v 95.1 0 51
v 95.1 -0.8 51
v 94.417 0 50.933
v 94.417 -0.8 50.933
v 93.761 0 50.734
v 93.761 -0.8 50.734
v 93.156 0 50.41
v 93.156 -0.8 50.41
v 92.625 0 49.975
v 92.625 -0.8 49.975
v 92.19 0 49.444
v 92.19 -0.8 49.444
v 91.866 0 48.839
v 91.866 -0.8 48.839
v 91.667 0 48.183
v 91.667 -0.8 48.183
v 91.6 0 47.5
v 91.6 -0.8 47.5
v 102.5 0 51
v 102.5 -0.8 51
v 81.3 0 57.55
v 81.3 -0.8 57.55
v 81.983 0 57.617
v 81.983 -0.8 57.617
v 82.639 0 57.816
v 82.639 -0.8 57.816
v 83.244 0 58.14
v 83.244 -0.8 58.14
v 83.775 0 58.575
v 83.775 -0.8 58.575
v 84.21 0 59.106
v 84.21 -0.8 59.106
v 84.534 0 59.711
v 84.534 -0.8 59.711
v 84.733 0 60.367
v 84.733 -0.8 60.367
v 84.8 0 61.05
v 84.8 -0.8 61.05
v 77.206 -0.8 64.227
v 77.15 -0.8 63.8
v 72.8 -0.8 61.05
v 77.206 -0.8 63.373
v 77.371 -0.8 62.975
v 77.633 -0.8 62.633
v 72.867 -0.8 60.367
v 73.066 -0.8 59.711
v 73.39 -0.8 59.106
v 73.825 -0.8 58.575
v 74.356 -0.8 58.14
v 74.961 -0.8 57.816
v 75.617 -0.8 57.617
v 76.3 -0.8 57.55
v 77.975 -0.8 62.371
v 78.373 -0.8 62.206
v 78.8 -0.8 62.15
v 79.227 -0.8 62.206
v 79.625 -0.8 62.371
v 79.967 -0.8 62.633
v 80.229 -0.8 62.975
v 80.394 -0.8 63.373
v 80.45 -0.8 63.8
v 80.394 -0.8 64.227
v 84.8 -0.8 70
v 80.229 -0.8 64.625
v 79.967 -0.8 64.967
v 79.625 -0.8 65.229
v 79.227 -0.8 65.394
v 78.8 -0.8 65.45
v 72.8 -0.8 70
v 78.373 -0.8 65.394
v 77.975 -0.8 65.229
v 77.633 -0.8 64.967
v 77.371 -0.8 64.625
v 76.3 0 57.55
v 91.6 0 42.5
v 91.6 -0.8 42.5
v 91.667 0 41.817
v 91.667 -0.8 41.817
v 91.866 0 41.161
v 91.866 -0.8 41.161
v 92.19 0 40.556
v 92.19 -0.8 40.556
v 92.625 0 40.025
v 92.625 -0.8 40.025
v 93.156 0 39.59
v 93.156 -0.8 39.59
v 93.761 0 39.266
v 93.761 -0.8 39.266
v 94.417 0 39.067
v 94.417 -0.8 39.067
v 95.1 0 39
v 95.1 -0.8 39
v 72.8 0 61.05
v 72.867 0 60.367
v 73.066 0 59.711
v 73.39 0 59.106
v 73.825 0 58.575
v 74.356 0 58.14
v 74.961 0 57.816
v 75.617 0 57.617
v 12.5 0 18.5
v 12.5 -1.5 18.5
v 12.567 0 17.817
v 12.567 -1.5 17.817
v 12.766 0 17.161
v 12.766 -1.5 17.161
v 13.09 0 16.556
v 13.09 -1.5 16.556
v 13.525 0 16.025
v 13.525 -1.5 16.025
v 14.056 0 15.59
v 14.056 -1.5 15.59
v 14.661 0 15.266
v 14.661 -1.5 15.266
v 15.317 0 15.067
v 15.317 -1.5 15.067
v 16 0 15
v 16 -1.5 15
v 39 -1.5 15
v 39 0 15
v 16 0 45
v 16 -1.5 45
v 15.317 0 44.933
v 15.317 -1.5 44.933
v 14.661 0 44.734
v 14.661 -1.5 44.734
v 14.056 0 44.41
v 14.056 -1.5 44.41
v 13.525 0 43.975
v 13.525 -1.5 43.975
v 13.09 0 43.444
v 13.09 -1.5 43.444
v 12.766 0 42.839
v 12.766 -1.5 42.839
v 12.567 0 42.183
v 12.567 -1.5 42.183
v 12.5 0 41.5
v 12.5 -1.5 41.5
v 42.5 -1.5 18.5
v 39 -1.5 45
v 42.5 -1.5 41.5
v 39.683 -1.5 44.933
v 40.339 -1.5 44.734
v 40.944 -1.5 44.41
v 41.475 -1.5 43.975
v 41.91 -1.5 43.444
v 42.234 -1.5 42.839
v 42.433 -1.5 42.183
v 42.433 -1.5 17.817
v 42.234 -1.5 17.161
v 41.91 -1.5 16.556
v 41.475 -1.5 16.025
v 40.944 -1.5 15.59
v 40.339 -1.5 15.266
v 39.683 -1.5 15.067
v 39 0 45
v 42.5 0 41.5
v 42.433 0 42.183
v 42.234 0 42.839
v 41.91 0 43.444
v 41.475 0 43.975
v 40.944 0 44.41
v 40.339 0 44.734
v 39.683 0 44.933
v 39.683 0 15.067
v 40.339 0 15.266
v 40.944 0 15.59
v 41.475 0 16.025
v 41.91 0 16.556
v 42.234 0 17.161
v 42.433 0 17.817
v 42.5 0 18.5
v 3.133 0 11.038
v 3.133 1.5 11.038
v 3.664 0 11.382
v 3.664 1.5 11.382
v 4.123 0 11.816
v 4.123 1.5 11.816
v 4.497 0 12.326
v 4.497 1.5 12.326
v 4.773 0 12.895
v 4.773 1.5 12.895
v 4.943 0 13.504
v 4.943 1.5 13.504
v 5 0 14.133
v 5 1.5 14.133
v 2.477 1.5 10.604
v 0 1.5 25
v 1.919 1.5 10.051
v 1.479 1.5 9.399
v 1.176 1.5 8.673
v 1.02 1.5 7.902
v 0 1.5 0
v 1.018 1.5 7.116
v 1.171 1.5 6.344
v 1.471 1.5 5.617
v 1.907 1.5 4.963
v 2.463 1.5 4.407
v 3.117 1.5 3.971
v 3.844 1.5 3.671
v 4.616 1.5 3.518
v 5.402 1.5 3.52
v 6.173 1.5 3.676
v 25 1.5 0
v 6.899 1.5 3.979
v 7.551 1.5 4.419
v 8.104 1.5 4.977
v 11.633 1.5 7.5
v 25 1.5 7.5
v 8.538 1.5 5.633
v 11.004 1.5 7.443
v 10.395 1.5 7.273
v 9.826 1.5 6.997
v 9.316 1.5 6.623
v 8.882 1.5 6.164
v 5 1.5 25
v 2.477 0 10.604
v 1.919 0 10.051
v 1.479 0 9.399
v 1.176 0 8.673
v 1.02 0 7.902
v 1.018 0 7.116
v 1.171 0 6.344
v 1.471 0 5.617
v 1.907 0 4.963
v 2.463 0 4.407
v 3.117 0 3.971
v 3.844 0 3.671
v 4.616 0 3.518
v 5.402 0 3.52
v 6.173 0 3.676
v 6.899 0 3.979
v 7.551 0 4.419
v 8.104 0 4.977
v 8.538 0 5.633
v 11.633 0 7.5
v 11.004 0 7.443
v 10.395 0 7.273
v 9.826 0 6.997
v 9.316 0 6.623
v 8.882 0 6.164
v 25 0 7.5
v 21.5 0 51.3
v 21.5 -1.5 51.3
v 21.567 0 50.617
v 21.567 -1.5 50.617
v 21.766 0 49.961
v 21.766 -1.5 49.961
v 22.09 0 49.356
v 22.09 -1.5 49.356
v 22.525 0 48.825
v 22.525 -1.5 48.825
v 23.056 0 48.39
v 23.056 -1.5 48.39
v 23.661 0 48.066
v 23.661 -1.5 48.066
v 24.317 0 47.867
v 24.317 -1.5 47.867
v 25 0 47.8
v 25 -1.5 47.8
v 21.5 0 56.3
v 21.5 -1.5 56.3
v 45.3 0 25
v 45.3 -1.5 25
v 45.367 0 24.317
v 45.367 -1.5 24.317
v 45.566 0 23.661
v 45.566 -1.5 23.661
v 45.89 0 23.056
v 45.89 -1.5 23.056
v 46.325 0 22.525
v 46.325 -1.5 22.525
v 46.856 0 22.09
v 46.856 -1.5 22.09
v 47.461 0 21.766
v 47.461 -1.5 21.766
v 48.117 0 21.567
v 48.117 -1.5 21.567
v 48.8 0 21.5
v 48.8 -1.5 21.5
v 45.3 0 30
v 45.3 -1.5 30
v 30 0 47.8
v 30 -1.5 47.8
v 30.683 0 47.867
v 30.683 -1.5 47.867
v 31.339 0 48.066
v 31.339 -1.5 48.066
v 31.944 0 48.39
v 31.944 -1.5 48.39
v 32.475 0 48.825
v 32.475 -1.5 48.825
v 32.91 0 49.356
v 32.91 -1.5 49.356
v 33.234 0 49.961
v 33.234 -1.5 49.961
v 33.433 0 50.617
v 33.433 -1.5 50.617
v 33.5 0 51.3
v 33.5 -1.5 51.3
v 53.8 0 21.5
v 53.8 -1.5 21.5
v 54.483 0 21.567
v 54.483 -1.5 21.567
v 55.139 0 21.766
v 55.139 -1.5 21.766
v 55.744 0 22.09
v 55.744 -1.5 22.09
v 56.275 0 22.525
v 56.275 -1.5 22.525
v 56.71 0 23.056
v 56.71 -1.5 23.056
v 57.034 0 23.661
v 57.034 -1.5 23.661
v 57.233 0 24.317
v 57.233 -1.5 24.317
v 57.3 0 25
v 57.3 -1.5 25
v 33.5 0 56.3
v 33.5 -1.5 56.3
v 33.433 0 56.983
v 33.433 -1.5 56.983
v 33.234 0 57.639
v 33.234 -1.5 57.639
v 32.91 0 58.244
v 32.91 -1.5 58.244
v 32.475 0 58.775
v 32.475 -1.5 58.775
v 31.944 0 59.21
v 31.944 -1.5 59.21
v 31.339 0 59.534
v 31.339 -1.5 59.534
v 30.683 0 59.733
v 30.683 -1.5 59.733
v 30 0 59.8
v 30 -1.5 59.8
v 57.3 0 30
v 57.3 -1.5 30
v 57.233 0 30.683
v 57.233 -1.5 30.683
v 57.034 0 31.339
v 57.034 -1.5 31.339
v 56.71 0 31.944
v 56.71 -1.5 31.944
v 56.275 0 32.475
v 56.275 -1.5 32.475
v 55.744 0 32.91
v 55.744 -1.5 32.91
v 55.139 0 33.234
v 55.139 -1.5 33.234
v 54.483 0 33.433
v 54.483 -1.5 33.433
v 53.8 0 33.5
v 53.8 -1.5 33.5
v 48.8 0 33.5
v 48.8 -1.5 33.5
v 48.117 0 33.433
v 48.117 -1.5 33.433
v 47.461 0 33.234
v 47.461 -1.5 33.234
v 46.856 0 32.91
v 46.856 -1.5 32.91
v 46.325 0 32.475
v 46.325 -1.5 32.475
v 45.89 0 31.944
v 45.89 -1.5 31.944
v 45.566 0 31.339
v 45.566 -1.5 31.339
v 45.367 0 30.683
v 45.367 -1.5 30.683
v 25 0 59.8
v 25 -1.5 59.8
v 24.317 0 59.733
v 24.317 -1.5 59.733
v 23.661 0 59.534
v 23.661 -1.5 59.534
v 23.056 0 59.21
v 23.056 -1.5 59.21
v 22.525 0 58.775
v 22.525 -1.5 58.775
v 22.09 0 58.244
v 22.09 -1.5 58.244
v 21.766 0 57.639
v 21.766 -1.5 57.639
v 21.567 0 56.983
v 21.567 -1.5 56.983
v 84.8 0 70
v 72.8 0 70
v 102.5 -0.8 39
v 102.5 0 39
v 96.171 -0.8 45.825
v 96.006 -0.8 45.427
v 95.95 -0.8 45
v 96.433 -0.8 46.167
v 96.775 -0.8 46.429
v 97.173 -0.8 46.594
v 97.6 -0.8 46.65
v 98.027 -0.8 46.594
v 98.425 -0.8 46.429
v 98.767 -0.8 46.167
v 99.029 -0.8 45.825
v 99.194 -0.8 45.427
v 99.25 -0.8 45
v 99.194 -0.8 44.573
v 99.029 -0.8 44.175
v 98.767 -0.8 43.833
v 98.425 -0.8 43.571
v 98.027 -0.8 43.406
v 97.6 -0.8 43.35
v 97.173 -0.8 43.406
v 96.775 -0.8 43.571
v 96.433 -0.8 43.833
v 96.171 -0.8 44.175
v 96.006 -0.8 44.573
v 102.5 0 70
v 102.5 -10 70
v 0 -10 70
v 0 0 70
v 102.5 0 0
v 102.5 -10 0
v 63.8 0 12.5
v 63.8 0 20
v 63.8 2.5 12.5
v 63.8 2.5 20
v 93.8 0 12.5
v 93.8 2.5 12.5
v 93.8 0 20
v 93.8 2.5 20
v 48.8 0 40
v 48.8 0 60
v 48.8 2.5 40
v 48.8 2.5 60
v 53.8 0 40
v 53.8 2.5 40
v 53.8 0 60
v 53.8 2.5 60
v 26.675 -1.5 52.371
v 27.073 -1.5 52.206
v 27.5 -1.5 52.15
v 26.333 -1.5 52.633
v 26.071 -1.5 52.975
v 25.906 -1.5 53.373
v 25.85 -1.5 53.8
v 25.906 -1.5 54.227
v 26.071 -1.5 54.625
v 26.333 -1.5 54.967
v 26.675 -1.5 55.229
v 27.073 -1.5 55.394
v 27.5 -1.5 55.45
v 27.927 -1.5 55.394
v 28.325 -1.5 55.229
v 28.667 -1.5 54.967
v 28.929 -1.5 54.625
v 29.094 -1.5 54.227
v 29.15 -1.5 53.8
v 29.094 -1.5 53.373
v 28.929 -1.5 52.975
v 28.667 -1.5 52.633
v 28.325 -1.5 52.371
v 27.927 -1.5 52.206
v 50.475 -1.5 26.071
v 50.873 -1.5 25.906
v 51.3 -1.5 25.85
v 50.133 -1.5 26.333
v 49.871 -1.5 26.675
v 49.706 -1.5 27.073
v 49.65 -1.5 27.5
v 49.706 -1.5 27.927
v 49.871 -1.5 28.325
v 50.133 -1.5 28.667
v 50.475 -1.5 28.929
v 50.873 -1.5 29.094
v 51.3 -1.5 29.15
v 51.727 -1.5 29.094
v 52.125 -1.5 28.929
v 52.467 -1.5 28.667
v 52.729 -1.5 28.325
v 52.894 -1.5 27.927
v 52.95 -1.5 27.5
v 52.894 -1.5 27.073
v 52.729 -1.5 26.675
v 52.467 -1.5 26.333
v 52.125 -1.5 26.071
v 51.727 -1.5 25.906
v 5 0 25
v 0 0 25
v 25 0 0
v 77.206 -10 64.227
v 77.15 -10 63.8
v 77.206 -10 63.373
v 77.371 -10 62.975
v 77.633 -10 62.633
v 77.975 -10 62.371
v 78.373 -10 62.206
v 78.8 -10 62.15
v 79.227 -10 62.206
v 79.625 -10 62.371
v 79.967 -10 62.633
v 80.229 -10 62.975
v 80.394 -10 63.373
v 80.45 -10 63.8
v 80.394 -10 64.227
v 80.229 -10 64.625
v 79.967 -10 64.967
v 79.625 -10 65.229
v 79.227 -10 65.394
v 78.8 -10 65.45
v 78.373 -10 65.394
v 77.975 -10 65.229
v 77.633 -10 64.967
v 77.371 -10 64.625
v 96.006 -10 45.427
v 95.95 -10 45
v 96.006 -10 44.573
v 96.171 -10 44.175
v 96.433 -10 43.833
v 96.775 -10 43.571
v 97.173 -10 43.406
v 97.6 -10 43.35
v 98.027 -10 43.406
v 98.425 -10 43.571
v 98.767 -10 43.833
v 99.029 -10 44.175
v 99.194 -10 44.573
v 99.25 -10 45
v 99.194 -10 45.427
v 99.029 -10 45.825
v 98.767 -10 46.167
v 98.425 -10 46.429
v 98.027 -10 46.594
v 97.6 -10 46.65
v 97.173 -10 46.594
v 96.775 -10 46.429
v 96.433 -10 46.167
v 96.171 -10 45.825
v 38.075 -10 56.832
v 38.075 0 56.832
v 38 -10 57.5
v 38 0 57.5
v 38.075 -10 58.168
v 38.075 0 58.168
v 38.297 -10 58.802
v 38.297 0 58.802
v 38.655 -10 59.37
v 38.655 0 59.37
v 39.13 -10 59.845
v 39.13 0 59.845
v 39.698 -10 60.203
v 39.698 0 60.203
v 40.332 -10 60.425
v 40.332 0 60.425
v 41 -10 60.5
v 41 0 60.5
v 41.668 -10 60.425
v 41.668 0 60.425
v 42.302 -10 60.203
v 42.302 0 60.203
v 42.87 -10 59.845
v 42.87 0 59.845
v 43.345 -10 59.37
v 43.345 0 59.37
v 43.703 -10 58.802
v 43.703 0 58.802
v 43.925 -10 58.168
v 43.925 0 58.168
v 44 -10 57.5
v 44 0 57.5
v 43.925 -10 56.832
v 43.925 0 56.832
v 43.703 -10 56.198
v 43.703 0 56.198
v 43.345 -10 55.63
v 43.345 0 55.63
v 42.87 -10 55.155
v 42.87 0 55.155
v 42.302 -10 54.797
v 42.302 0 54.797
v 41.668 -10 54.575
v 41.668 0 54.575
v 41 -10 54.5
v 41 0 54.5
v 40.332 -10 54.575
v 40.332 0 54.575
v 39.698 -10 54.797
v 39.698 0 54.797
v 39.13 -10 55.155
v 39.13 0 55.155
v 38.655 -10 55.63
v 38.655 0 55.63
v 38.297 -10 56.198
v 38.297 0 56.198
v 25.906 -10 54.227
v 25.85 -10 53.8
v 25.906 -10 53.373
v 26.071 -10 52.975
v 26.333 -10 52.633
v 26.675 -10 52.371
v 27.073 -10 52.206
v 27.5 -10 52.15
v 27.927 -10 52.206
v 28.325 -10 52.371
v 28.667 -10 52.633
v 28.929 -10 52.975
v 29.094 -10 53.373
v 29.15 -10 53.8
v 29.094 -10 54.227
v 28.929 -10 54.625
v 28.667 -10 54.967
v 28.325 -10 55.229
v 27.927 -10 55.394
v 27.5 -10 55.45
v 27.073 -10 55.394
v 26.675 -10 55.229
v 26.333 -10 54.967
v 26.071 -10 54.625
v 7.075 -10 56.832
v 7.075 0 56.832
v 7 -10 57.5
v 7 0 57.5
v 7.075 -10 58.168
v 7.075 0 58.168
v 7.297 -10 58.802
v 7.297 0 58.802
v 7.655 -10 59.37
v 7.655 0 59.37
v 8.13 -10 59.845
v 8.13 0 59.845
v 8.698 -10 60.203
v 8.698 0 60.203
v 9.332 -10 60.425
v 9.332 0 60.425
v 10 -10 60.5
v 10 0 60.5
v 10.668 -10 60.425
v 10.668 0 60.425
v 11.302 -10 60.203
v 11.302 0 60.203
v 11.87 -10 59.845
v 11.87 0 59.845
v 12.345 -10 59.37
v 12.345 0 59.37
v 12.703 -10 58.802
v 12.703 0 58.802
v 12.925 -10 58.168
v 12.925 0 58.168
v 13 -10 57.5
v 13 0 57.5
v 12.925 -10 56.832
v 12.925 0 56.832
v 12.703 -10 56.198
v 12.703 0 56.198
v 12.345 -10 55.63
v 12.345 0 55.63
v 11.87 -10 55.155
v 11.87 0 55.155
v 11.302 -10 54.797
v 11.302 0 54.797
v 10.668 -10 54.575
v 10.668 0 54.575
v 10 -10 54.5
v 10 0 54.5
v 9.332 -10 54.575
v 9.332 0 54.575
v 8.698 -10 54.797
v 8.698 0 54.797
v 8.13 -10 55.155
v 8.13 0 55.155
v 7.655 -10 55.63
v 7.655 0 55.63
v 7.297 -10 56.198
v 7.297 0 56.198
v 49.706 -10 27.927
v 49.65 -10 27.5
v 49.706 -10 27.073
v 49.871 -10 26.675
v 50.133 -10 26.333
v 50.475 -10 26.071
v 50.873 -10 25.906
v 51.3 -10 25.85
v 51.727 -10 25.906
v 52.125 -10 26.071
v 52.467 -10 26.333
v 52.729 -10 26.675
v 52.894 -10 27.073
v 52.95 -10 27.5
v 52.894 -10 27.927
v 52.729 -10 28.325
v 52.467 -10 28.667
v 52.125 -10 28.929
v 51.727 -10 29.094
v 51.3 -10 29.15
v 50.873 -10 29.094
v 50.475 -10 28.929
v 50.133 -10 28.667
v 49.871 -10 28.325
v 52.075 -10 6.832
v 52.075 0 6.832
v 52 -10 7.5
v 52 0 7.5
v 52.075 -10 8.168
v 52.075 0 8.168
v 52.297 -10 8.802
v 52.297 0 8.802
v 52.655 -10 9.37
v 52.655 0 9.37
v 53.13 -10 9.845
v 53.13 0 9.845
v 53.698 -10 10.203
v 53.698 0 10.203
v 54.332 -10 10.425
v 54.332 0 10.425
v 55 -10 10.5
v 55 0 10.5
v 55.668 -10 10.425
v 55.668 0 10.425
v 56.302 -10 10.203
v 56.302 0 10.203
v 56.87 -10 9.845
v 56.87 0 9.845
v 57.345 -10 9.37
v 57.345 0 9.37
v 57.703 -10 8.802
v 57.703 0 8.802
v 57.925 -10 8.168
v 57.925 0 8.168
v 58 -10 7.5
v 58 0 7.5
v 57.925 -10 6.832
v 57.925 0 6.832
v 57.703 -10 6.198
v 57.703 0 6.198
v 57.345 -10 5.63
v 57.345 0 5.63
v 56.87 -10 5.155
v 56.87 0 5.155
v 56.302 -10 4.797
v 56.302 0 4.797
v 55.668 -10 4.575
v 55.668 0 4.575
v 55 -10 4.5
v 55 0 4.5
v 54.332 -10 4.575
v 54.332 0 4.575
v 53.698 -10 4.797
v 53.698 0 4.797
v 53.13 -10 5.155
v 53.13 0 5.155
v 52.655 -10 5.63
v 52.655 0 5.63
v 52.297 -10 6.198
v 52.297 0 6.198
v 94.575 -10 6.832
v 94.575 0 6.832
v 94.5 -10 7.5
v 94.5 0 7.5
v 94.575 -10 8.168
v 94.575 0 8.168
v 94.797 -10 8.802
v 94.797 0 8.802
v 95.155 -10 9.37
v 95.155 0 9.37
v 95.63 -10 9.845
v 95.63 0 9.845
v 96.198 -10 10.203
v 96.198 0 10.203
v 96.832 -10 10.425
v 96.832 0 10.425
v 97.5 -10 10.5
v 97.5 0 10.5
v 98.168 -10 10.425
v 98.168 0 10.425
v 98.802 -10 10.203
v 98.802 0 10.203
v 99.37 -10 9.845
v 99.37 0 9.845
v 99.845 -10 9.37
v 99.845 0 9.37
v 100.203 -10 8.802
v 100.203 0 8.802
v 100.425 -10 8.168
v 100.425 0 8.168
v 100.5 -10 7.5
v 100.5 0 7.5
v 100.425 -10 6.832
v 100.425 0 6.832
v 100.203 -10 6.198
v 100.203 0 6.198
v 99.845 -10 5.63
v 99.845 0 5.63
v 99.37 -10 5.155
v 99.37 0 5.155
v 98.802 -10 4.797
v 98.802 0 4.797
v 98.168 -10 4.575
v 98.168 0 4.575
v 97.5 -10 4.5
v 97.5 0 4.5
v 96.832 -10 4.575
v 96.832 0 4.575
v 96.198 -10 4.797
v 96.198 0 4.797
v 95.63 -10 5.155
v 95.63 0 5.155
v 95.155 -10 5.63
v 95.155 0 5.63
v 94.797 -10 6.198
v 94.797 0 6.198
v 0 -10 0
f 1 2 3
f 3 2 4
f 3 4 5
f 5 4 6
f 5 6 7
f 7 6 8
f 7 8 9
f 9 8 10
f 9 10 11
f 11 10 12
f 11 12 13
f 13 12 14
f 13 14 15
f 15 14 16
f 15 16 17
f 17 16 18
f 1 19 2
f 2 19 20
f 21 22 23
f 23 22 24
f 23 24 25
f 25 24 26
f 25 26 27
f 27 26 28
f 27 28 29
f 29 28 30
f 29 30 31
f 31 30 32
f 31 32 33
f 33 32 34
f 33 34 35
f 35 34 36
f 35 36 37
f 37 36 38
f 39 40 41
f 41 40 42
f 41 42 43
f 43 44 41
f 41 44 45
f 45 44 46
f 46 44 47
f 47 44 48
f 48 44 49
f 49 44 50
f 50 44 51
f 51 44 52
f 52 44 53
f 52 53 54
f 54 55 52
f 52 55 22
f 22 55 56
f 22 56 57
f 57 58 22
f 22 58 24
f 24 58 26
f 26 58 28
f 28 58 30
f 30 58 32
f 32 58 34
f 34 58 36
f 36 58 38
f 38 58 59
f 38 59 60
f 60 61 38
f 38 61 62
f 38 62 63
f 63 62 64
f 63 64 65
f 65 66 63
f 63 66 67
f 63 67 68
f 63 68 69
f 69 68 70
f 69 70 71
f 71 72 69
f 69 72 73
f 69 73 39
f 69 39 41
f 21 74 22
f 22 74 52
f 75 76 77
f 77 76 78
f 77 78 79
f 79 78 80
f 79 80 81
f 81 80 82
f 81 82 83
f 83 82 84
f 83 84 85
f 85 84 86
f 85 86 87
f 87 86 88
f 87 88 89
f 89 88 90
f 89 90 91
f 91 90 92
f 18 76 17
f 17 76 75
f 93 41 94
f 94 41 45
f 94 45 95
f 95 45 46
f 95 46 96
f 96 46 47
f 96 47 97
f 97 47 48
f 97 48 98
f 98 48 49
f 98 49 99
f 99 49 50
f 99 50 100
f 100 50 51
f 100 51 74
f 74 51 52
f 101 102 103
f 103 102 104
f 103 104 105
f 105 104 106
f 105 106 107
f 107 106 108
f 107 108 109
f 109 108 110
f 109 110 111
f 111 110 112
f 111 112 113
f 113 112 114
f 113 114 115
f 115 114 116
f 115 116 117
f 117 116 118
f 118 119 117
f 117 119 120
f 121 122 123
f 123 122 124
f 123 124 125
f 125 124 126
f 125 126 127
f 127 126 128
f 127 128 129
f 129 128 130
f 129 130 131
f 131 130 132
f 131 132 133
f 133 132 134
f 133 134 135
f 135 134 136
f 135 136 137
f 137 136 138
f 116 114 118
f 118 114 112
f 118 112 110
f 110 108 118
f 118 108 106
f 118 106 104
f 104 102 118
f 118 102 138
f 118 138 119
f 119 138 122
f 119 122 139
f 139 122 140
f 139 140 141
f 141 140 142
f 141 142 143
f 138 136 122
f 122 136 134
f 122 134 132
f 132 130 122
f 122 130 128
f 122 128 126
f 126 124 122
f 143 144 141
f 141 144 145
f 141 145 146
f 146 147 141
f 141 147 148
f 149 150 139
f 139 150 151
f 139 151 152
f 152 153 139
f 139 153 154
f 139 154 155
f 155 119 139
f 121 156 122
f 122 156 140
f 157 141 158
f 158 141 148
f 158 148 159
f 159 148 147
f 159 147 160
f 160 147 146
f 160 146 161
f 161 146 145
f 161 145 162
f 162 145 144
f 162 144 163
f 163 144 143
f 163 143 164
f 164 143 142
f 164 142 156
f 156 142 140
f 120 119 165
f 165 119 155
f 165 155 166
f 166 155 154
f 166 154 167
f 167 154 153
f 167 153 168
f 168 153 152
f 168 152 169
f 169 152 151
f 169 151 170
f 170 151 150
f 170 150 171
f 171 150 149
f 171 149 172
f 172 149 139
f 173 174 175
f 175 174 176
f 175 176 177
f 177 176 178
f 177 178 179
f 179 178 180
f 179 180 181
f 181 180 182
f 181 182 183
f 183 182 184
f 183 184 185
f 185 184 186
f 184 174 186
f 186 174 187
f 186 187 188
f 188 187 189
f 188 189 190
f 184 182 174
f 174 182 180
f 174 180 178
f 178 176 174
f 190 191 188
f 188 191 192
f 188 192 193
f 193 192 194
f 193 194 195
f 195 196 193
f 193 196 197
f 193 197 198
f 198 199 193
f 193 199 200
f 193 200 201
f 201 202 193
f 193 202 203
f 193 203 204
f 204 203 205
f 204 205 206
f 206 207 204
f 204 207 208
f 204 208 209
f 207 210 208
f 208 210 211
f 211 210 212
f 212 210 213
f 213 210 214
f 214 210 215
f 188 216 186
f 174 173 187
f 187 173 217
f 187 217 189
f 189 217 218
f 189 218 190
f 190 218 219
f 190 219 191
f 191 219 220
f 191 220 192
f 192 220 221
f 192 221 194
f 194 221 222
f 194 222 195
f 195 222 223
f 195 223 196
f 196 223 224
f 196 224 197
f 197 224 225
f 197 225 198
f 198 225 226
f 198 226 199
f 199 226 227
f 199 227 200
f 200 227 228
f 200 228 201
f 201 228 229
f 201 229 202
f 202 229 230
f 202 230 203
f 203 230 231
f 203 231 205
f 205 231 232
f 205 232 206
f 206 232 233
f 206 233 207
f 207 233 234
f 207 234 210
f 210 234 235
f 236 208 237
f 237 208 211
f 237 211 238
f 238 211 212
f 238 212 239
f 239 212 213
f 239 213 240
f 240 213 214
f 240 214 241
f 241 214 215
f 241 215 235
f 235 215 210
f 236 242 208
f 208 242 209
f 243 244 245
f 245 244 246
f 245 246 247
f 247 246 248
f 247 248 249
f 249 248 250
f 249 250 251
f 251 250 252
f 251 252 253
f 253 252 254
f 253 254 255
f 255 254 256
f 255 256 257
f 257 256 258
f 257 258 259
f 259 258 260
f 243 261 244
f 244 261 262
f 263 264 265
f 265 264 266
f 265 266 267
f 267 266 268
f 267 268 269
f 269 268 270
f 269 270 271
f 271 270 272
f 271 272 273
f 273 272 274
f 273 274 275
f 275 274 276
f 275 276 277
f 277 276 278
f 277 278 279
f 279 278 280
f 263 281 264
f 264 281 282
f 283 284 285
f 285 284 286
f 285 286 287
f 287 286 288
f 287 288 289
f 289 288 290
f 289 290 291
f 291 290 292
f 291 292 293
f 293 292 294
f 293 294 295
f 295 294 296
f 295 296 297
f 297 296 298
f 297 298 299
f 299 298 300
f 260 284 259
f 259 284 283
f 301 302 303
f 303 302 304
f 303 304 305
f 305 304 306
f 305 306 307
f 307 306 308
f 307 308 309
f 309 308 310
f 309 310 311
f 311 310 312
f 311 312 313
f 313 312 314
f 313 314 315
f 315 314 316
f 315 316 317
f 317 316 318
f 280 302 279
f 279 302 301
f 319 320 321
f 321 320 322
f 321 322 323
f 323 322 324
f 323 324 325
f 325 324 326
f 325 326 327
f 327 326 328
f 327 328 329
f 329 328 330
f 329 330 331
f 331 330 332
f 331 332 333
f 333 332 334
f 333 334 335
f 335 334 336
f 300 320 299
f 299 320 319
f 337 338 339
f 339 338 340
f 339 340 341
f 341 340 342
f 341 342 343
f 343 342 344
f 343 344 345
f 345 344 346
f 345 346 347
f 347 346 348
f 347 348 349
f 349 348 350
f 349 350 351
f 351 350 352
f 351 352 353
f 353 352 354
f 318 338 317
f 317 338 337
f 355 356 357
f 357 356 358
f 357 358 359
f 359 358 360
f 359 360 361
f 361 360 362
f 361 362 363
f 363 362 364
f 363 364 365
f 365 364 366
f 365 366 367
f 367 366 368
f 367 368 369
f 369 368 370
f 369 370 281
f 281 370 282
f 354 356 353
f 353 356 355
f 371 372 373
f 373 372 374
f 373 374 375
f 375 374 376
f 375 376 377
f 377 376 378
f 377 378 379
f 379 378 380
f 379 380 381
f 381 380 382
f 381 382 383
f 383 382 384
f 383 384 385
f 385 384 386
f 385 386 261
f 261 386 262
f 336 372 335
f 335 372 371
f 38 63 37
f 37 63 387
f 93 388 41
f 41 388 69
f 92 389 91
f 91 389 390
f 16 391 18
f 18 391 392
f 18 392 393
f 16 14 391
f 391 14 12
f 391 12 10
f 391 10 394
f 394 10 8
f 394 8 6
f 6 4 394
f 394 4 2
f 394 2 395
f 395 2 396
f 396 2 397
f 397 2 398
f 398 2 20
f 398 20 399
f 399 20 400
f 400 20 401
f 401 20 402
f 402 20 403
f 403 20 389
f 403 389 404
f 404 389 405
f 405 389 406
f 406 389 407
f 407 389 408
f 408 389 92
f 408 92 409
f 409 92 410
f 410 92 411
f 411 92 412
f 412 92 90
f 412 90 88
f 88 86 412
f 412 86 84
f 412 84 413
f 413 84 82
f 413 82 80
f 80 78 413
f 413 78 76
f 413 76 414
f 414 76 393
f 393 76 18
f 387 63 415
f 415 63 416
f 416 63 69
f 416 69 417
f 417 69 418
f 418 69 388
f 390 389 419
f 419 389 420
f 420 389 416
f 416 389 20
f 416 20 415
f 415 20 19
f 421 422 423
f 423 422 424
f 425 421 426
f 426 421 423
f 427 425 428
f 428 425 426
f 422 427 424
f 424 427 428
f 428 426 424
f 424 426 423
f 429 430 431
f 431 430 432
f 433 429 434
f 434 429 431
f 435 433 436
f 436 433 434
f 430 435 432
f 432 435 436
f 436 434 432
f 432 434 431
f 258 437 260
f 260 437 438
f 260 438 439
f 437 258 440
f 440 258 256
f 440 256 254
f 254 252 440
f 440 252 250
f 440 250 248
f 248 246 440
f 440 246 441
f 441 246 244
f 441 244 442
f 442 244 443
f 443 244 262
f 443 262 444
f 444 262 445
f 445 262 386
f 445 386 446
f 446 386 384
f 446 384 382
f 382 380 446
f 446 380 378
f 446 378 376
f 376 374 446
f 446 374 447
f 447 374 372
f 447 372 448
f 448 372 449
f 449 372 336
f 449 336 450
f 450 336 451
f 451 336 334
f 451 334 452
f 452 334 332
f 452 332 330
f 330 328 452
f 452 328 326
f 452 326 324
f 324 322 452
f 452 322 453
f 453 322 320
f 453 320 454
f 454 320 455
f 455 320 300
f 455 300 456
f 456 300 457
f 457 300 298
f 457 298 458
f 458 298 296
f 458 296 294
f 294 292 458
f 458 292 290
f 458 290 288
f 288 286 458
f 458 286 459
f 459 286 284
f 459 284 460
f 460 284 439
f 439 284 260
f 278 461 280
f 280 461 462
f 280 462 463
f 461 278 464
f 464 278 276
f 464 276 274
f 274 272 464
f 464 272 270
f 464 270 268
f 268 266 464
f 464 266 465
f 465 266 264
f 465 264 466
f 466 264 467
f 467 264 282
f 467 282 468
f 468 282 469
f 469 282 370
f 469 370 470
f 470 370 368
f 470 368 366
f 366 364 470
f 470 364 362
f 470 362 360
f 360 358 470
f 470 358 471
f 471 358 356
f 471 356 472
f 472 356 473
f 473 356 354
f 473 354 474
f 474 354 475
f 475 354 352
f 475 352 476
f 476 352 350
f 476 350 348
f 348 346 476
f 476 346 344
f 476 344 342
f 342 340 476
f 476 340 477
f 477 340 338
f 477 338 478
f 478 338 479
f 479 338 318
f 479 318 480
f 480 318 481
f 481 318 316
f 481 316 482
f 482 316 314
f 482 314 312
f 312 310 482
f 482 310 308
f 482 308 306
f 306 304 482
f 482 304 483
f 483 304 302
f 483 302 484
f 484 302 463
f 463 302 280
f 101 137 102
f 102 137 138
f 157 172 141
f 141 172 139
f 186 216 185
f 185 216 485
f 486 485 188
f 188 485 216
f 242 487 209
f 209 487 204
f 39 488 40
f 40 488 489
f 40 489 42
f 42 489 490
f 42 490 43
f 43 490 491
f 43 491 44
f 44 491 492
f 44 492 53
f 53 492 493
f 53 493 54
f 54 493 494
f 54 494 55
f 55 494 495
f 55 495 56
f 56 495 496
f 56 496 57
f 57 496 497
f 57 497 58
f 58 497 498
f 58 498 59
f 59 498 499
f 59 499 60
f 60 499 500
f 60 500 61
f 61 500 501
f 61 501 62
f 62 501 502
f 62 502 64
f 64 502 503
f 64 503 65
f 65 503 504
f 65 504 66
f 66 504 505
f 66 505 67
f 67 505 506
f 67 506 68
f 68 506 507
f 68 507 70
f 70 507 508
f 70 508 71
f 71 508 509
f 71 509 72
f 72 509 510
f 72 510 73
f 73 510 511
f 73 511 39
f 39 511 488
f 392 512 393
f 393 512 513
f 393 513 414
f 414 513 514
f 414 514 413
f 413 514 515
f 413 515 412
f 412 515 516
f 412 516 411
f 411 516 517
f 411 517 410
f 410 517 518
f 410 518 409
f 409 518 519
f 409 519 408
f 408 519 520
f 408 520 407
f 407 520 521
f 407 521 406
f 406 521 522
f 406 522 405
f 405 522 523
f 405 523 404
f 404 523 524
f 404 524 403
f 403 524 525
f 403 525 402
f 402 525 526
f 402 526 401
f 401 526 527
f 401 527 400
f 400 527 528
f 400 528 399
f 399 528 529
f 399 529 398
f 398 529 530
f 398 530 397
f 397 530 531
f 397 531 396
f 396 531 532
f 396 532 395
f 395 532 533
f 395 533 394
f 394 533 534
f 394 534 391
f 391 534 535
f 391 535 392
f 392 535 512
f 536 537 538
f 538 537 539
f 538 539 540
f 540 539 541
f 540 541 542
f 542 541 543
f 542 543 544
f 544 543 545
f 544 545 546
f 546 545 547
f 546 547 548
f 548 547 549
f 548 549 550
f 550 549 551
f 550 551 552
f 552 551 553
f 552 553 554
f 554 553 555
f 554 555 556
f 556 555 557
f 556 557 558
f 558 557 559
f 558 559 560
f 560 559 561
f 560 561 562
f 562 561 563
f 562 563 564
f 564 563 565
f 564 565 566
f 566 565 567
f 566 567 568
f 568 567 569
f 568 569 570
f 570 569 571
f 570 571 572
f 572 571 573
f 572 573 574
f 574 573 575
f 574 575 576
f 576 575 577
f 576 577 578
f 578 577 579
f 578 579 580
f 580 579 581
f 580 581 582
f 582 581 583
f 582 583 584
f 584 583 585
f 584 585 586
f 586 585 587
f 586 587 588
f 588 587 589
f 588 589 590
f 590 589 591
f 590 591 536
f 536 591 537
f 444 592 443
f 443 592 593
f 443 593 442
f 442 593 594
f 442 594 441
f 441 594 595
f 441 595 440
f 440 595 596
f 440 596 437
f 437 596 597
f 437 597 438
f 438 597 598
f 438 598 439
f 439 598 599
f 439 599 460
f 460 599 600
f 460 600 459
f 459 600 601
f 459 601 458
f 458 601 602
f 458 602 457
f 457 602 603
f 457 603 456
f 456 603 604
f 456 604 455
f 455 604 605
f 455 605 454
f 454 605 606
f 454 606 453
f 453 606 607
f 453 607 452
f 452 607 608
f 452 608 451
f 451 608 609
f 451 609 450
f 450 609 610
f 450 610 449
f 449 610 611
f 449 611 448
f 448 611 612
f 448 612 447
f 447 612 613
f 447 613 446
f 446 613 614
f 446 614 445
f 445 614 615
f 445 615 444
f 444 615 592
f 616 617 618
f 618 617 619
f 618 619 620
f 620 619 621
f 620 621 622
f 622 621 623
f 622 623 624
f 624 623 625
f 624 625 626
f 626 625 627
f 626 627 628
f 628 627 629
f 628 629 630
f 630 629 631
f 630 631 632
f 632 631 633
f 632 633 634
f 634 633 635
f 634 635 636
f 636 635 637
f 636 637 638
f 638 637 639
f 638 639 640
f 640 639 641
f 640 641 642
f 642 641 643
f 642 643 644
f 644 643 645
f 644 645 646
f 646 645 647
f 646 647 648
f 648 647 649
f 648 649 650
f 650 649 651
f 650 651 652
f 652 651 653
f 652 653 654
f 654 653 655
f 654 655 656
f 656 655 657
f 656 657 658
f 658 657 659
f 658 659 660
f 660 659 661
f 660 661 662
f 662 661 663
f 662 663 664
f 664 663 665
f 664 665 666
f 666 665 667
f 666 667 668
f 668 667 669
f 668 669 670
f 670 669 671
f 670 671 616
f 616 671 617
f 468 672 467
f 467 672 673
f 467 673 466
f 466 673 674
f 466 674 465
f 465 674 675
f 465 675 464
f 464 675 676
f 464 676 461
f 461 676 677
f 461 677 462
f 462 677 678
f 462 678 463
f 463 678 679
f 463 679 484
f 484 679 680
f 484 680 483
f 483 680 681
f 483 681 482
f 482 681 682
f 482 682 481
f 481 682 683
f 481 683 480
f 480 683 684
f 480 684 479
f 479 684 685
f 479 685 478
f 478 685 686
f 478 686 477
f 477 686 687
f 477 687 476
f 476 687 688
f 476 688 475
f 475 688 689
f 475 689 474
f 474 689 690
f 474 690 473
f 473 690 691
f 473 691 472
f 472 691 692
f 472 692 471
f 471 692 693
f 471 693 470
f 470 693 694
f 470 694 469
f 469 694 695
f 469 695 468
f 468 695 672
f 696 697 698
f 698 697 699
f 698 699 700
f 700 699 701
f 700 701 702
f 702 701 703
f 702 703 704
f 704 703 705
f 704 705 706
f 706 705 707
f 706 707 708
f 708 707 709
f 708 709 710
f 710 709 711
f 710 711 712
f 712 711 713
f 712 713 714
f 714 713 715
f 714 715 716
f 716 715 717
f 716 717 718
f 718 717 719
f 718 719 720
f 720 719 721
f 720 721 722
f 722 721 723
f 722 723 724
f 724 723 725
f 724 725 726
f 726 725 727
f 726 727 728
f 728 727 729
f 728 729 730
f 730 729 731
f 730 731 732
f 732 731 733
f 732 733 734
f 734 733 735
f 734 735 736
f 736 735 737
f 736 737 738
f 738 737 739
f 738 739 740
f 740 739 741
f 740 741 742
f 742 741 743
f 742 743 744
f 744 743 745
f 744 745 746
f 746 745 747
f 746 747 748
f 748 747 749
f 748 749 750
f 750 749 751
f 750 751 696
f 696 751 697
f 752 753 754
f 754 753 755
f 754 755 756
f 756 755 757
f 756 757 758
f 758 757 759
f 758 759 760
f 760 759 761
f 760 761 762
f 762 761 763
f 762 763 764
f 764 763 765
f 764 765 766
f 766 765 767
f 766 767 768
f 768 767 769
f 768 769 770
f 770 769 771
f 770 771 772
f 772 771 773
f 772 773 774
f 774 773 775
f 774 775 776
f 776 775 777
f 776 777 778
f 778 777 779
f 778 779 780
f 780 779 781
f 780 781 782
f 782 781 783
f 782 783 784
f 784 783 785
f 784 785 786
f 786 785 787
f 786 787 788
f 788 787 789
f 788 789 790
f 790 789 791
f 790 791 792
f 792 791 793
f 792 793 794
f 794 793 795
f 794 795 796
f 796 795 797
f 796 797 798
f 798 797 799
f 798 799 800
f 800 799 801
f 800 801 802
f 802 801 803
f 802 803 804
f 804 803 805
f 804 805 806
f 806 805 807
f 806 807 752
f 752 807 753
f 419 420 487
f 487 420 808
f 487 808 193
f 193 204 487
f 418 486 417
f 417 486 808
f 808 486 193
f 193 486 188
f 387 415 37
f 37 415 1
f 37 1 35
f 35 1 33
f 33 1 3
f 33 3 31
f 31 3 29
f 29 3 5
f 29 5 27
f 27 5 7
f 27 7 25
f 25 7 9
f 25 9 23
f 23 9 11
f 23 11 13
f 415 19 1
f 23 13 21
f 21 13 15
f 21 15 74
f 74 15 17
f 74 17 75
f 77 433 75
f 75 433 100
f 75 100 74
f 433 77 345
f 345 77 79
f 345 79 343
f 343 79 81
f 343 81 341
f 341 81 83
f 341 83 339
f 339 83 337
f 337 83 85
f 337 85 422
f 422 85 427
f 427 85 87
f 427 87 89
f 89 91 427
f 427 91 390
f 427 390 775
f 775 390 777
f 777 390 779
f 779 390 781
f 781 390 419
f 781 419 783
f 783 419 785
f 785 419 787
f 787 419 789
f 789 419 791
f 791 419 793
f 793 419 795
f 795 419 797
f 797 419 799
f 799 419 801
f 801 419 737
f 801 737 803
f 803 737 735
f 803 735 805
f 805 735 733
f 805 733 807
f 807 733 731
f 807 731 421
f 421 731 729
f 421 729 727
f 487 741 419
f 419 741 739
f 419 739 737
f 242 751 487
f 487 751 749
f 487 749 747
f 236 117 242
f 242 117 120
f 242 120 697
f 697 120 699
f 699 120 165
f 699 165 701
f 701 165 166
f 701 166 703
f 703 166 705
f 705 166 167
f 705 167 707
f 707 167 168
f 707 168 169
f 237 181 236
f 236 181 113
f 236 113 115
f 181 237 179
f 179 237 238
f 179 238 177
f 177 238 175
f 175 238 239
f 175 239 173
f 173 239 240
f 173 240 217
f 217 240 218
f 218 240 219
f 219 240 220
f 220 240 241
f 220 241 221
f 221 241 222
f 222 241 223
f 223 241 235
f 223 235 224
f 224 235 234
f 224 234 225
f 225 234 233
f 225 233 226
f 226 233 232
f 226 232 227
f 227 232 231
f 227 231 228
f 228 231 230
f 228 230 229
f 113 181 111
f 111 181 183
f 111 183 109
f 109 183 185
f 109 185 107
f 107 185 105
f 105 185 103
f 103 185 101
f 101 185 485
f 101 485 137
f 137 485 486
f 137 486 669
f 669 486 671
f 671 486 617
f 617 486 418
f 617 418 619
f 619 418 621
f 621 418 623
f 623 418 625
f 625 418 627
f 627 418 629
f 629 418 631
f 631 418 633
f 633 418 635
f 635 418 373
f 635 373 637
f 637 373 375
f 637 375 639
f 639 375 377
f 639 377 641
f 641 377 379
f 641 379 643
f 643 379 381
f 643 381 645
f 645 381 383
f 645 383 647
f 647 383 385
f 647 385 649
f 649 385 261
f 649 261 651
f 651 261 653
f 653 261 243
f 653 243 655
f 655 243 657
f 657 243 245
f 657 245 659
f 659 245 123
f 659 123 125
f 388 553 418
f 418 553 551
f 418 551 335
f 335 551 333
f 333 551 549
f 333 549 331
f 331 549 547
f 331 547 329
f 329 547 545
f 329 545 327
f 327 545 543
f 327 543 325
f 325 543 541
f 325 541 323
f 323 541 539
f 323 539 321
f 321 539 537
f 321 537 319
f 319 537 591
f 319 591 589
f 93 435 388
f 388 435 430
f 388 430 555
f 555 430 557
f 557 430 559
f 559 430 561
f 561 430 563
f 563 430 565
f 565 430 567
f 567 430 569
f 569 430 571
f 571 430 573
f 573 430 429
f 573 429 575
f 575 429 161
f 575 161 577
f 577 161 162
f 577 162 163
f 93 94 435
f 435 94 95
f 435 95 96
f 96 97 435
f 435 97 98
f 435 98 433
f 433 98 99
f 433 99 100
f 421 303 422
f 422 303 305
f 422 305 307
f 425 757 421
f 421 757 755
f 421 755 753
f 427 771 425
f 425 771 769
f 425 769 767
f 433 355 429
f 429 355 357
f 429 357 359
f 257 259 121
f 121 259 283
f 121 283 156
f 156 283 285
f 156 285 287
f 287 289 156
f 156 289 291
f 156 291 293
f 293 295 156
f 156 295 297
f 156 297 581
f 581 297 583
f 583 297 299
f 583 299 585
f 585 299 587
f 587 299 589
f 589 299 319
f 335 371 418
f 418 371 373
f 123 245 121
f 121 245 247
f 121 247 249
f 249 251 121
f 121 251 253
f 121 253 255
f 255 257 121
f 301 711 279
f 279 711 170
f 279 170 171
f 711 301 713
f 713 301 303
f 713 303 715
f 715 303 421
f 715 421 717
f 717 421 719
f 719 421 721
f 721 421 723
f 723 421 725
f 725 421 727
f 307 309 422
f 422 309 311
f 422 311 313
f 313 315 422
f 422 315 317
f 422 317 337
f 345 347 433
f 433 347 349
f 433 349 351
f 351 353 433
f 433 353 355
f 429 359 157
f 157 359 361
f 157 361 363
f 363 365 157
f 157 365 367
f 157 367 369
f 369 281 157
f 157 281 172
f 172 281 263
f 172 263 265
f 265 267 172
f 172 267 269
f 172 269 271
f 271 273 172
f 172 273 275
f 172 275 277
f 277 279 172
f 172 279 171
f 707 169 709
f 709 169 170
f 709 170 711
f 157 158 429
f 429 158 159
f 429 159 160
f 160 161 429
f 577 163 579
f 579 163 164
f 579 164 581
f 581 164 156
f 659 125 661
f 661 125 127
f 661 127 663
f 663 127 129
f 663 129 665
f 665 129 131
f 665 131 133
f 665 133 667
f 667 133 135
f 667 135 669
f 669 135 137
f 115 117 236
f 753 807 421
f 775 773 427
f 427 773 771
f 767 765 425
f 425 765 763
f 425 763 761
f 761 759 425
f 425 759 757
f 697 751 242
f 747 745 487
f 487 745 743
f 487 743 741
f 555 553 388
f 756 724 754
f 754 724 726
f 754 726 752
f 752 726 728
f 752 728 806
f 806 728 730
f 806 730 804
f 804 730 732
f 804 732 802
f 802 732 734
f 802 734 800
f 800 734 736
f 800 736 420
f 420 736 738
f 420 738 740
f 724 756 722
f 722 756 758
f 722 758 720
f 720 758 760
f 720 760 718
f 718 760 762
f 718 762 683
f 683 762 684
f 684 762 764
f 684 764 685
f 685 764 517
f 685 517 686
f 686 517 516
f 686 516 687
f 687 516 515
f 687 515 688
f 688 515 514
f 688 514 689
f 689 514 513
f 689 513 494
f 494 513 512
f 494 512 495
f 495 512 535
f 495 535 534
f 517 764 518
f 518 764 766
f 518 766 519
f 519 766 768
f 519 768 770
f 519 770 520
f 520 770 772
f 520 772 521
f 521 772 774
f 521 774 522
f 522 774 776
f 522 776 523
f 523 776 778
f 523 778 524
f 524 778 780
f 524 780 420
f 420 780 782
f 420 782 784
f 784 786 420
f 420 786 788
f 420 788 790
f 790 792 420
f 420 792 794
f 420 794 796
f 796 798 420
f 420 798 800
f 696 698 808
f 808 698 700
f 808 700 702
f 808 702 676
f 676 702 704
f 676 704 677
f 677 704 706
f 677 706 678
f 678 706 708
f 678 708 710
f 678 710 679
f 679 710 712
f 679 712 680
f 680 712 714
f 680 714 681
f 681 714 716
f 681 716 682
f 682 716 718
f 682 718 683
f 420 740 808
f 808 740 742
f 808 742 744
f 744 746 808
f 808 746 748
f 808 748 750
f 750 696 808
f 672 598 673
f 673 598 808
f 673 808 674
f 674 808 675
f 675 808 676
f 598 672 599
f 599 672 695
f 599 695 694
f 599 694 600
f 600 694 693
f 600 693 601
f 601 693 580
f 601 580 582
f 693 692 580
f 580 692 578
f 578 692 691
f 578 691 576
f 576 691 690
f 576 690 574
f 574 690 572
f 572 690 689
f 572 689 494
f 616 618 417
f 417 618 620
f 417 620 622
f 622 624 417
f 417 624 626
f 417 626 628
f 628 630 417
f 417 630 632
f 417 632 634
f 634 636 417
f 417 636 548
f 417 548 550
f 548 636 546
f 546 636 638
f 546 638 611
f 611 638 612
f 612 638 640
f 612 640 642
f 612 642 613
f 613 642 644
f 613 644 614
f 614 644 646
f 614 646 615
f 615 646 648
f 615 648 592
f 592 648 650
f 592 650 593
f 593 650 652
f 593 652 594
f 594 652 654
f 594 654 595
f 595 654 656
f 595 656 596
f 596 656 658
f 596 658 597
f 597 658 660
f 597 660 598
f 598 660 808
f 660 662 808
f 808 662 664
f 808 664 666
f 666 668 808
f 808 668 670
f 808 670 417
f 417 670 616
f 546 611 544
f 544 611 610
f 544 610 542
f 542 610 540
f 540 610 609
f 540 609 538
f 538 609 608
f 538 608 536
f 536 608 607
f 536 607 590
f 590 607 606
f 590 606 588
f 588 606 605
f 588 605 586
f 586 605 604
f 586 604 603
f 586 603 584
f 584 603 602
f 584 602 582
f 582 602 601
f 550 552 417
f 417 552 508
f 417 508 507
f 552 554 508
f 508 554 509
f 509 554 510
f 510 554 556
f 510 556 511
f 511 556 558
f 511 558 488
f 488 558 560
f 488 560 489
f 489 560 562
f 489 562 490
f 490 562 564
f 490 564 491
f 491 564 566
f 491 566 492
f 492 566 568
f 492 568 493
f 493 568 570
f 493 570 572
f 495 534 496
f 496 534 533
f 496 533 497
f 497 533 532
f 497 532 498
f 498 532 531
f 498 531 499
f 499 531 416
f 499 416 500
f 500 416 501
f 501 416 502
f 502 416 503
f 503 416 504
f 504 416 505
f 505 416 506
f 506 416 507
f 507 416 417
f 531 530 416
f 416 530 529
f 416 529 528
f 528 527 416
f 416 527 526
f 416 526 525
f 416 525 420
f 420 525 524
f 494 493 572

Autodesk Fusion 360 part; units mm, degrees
sketch "Skizze1" plane through (0, 0, 0) normal (0, 1, 0) x (1, 0, 0)
  line L0 (0, 0) -> (102.5, 0)
  line L1 (102.5, 0) -> (102.5, -70)
  line L2 (102.5, -70) -> (0, -70)
  line L3 (0, -70) -> (0, 0)
  line L4 (0, 0) -> (5, 0)
  line L5 (5, 0) -> (5, -25)
  line L6 (5, -25) -> (0, -25)
  line L7 (0, -25) -> (0, 0)
  line L8 (0, 0) -> (25, 0)
  line L9 (25, 0) -> (25, -7.5)
  line L10 (25, -7.5) -> (0, -7.5)
  line L11 (0, -7.5) -> (0, 0)
  circle A0 centre (5, -7.5) radius 4
  circle A1 centre (27.5, -53.8) radius 1.65
  circle A2 centre (51.3, -27.5) radius 1.65
  line L12 (55.1, -25.926) -> (52.874, -23.7)
  line L13 (52.874, -23.7) -> (49.726, -23.7)
  line L14 (49.726, -23.7) -> (47.5, -25.926)
  line L15 (47.5, -25.926) -> (47.5, -29.074)
  line L16 (47.5, -29.074) -> (49.726, -31.3)
  line L17 (49.726, -31.3) -> (52.874, -31.3)
  line L18 (52.874, -31.3) -> (55.1, -29.074)
  line L19 (55.1, -29.074) -> (55.1, -25.926)
  line L20 (31.3, -52.226) -> (29.074, -50)
  line L21 (29.074, -50) -> (25.926, -50)
  line L22 (25.926, -50) -> (23.7, -52.226)
  line L23 (23.7, -52.226) -> (23.7, -55.374)
  line L24 (23.7, -55.374) -> (25.926, -57.6)
  line L25 (25.926, -57.6) -> (29.074, -57.6)
  line L26 (29.074, -57.6) -> (31.3, -55.374)
  line L27 (31.3, -55.374) -> (31.3, -52.226)
  line L28 (57.3, -21.5) -> (45.3, -21.5)
  line L29 (45.3, -21.5) -> (45.3, -33.5)
  line L30 (45.3, -33.5) -> (57.3, -33.5)
  line L31 (57.3, -33.5) -> (57.3, -21.5)
  line L32 (57.3, -21.5) -> (45.3, -33.5) construction
  line L33 (45.3, -21.5) -> (57.3, -33.5) construction
  line L34 (33.5, -47.8) -> (21.5, -47.8)
  line L35 (21.5, -47.8) -> (21.5, -59.8)
  line L36 (21.5, -59.8) -> (33.5, -59.8)
  line L37 (33.5, -59.8) -> (33.5, -47.8)
  line L38 (33.5, -47.8) -> (21.5, -59.8) construction
  line L39 (21.5, -47.8) -> (33.5, -59.8) construction
  circle A3 centre (55, -7.5) radius 3
  circle A4 centre (10, -57.5) radius 3
  line L40 (48.8, -40) -> (53.8, -40)
  line L41 (53.8, -40) -> (53.8, -60)
  line L42 (53.8, -60) -> (48.8, -60)
  line L43 (48.8, -60) -> (48.8, -40)
  line L44 (63.8, -12.5) -> (93.8, -12.5)
  line L45 (93.8, -12.5) -> (93.8, -20)
  line L46 (93.8, -20) -> (63.8, -20)
  line L47 (63.8, -20) -> (63.8, -12.5)
  line L48 (77.226, -60) -> (75, -62.226)
  circle A5 centre (78.8, -63.8) radius 1.65
  line L49 (75, -65.374) -> (77.226, -67.6)
  line L50 (80.374, -67.6) -> (82.6, -65.374)
  line L51 (72.8, -57.55) -> (72.8, -70.05)
  line L52 (75, -62.226) -> (75, -65.374)
  line L53 (84.8, -70.05) -> (84.8, -57.55)
  line L54 (84.8, -57.55) -> (72.8, -57.55)
  line L55 (72.8, -57.55) -> (84.8, -70.05) construction
  line L56 (82.6, -62.226) -> (80.374, -60)
  line L57 (77.226, -67.6) -> (80.374, -67.6)
  line L58 (80.374, -60) -> (77.226, -60)
  line L59 (82.6, -65.374) -> (82.6, -62.226)
  line L60 (72.8, -70.05) -> (84.8, -70.05)
  line L61 (84.8, -57.55) -> (72.8, -70.05) construction
  line L62 (96.026, -41.2) -> (93.8, -43.426)
  circle A6 centre (97.6, -45) radius 1.65
  line L63 (93.8, -46.574) -> (96.026, -48.8)
  line L64 (99.174, -48.8) -> (101.4, -46.574)
  line L65 (91.6, -39) -> (91.6, -51)
  line L66 (93.8, -43.426) -> (93.8, -46.574)
  line L67 (103.6, -51) -> (103.6, -39)
  line L68 (103.6, -39) -> (91.6, -39)
  line L69 (91.6, -39) -> (103.6, -51) construction
  line L70 (101.4, -43.426) -> (99.174, -41.2)
  line L71 (96.026, -48.8) -> (99.174, -48.8)
  line L72 (99.174, -41.2) -> (96.026, -41.2)
  line L73 (101.4, -46.574) -> (101.4, -43.426)
  line L74 (91.6, -51) -> (103.6, -51)
  line L75 (103.6, -39) -> (91.6, -51) construction
  line L76 (42.5, -15) -> (12.5, -15)
  line L77 (12.5, -15) -> (12.5, -45)
  line L78 (12.5, -45) -> (42.5, -45)
  line L79 (42.5, -45) -> (42.5, -15)
  line L80 (42.5, -15) -> (12.5, -45) construction
  line L81 (12.5, -15) -> (42.5, -45) construction
  circle A7 centre (41, -57.5) radius 3
  circle A8 centre (97.5, -7.5) radius 3
  point P0 (51.3, -27.5)
  point P1 (27.5, -53.8)
  point P2 (51.3, -27.5)
  point P3 (27.5, -53.8)
  point P4 (78.8, -63.8)
  point P5 (78.8, -63.8)
  point P6 (97.6, -45)
  point P7 (97.6, -45)
  point P8 (27.5, -30)
  dimension "d1" = 102.5
  dimension "d2" = 70
  dimension "d3" = 5
  dimension "d4" = 25
  dimension "d5" = 25
  dimension "d6" = 7.5
  dimension "d7" = 8
  dimension "d8" = 3.3
  dimension "d9" = 46.3
  dimension "d11" = 3.3
  dimension "d13" = 46.3
  dimension "d14" = 20
  dimension "d15" = 22.5
  dimension "d16" = 3.8
  dimension "d17" = 3.8
  dimension "d18" = 12
  dimension "d19" = 12
  dimension "d20" = 12
  dimension "d21" = 12
  dimension "d34" = 6
  dimension "d35" = 6
  dimension "d36" = 7.5
  dimension "d37" = 55
  dimension "d38" = 50
  dimension "d39" = 10
  dimension "d40" = 5
  dimension "d41" = 20
  dimension "d42" = 2.5
  dimension "d43" = 60
  dimension "d44" = 30
  dimension "d45" = 7.5
  dimension "d47" = 10
  dimension "d48" = 3.3
  dimension "d49" = 3.8
  dimension "d50" = 12
  dimension "d51" = 12.5
  dimension "d52" = 43.8
  dimension "d53" = 15
  dimension "d54" = 3.3
  dimension "d55" = 3.8
  dimension "d56" = 12
  dimension "d57" = 12
  dimension "d58" = 43.8
  dimension "d59" = 15
  dimension "d84" = 20
  dimension "d85" = 30
  dimension "d86" = 30
  dimension "d87" = 22.5
  dimension "d88" = 22.5
  dimension "d131" = 6
  dimension "d132" = 50
  dimension "d133" = 31
  dimension "d134" = 6
  dimension "d135" = 7.5
  dimension "d136" = 5
extrude "Extrusion1" add sketch "Skizze1" against normal blind 10 contours L0 L3 L4 L5 L7 L8 L10 L11 A0 | L0 L5 L8 L9 L10 A0 | L3 L5 L6 L7 L10 A0 | L0 L1 L2 L3 L5 L6 L9 L10 A0 L51 L53 L54 L65 L68 L74 | L5 L10 A0 | L5 L10 A0 | L5 L10 A0 | L5 L10 A0 | L1 L65 L68 L74 | L2 L51 L53 L54 | L12 L13 L14 L15 L16 L17 L18 L19 | L20 L21 L22 L23 L24 L25 L26 L27 | L28 L29 L30 L31 | L34 L35 L36 L37 | L40 L41 L42 L43 | L44 L45 L46 L47 | L48 L49 L50 L52 L56 L57 L58 L59 | L62 L63 L64 L66 L70 L71 L72 L73 | L76 L77 L78 L79 makes body 1
extrude "Extrusion2" add sketch "Skizze1" along normal blind 1.5 contours L0 L3 L4 L5 L7 L8 L10 L11 A0 | L0 L5 L8 L9 L10 A0 | L3 L5 L6 L7 L10 A0 bodies 1
extrude "Extrusion3" cut sketch "Skizze1" against normal blind 1.5 contours A1 | A2 | L12 L13 L14 L15 L16 L17 L18 L19 | L20 L21 L22 L23 L24 L25 L26 L27 | L28 L29 L30 L31 | L34 L35 L36 L37 | L76 L77 L78 L79 bodies 1
extrude "Extrusion5" add sketch "Skizze1" along normal blind 2.5 contours L40 L41 L42 L43 | L44 L45 L46 L47 bodies 1
extrude "Extrusion6" cut sketch "Skizze1" against normal blind 0.8 contours L1 L67 L68 L74 | L1 L65 L68 L74 | L2 L51 L53 L54 | L2 L51 L53 L60 | L48 L49 L50 L52 L56 L57 L58 L59 | L62 L63 L64 L66 L70 L71 L72 L73 bodies 1
fillet "Abrundung1" radius 3.5 10 edges at (21.5, -0.75, 59.8) (45.3, -0.75, 33.5) (57.3, -0.75, 33.5) (33.5, -0.75, 59.8) (57.3, -0.75, 21.5) (33.5, -0.75, 47.8) (45.3, -0.75, 21.5) (21.5, -0.75, 47.8) (9, 0.75, 7.5) (5, 0.75, 11.5) on bodies 1
fillet "Abrundung1" radius 3.5 7 edges at (42.5, -0.75, 15) (42.5, -0.75, 45) (12.5, -0.75, 45) (12.5, -0.75, 15) (72.8, -0.4, 57.55) (91.6, -0.4, 39) (84.8, -0.4, 57.55) on bodies 1
fillet "Abrundung1" radius 3.5 1 edges at (91.6, -0.4, 51) on bodies 1
copy_body "Körper->Berechn1" bodies 1 removing the originals makes body 2 in component "Fixture"
component "Fixture" placed x (1, 0, 0) y (0, 1, 0) z (0, 0, 1) at (0, 0, 0)
equation "d9 = 3.8 mm + 42.5 mm"
equation "d13 = d9"
equation "d52 = 40 mm + 3.8 mm"
equation "d58 = d52"
equation "d62 = -2.8 mm + 2 mm"
equation "d132 = d38"
